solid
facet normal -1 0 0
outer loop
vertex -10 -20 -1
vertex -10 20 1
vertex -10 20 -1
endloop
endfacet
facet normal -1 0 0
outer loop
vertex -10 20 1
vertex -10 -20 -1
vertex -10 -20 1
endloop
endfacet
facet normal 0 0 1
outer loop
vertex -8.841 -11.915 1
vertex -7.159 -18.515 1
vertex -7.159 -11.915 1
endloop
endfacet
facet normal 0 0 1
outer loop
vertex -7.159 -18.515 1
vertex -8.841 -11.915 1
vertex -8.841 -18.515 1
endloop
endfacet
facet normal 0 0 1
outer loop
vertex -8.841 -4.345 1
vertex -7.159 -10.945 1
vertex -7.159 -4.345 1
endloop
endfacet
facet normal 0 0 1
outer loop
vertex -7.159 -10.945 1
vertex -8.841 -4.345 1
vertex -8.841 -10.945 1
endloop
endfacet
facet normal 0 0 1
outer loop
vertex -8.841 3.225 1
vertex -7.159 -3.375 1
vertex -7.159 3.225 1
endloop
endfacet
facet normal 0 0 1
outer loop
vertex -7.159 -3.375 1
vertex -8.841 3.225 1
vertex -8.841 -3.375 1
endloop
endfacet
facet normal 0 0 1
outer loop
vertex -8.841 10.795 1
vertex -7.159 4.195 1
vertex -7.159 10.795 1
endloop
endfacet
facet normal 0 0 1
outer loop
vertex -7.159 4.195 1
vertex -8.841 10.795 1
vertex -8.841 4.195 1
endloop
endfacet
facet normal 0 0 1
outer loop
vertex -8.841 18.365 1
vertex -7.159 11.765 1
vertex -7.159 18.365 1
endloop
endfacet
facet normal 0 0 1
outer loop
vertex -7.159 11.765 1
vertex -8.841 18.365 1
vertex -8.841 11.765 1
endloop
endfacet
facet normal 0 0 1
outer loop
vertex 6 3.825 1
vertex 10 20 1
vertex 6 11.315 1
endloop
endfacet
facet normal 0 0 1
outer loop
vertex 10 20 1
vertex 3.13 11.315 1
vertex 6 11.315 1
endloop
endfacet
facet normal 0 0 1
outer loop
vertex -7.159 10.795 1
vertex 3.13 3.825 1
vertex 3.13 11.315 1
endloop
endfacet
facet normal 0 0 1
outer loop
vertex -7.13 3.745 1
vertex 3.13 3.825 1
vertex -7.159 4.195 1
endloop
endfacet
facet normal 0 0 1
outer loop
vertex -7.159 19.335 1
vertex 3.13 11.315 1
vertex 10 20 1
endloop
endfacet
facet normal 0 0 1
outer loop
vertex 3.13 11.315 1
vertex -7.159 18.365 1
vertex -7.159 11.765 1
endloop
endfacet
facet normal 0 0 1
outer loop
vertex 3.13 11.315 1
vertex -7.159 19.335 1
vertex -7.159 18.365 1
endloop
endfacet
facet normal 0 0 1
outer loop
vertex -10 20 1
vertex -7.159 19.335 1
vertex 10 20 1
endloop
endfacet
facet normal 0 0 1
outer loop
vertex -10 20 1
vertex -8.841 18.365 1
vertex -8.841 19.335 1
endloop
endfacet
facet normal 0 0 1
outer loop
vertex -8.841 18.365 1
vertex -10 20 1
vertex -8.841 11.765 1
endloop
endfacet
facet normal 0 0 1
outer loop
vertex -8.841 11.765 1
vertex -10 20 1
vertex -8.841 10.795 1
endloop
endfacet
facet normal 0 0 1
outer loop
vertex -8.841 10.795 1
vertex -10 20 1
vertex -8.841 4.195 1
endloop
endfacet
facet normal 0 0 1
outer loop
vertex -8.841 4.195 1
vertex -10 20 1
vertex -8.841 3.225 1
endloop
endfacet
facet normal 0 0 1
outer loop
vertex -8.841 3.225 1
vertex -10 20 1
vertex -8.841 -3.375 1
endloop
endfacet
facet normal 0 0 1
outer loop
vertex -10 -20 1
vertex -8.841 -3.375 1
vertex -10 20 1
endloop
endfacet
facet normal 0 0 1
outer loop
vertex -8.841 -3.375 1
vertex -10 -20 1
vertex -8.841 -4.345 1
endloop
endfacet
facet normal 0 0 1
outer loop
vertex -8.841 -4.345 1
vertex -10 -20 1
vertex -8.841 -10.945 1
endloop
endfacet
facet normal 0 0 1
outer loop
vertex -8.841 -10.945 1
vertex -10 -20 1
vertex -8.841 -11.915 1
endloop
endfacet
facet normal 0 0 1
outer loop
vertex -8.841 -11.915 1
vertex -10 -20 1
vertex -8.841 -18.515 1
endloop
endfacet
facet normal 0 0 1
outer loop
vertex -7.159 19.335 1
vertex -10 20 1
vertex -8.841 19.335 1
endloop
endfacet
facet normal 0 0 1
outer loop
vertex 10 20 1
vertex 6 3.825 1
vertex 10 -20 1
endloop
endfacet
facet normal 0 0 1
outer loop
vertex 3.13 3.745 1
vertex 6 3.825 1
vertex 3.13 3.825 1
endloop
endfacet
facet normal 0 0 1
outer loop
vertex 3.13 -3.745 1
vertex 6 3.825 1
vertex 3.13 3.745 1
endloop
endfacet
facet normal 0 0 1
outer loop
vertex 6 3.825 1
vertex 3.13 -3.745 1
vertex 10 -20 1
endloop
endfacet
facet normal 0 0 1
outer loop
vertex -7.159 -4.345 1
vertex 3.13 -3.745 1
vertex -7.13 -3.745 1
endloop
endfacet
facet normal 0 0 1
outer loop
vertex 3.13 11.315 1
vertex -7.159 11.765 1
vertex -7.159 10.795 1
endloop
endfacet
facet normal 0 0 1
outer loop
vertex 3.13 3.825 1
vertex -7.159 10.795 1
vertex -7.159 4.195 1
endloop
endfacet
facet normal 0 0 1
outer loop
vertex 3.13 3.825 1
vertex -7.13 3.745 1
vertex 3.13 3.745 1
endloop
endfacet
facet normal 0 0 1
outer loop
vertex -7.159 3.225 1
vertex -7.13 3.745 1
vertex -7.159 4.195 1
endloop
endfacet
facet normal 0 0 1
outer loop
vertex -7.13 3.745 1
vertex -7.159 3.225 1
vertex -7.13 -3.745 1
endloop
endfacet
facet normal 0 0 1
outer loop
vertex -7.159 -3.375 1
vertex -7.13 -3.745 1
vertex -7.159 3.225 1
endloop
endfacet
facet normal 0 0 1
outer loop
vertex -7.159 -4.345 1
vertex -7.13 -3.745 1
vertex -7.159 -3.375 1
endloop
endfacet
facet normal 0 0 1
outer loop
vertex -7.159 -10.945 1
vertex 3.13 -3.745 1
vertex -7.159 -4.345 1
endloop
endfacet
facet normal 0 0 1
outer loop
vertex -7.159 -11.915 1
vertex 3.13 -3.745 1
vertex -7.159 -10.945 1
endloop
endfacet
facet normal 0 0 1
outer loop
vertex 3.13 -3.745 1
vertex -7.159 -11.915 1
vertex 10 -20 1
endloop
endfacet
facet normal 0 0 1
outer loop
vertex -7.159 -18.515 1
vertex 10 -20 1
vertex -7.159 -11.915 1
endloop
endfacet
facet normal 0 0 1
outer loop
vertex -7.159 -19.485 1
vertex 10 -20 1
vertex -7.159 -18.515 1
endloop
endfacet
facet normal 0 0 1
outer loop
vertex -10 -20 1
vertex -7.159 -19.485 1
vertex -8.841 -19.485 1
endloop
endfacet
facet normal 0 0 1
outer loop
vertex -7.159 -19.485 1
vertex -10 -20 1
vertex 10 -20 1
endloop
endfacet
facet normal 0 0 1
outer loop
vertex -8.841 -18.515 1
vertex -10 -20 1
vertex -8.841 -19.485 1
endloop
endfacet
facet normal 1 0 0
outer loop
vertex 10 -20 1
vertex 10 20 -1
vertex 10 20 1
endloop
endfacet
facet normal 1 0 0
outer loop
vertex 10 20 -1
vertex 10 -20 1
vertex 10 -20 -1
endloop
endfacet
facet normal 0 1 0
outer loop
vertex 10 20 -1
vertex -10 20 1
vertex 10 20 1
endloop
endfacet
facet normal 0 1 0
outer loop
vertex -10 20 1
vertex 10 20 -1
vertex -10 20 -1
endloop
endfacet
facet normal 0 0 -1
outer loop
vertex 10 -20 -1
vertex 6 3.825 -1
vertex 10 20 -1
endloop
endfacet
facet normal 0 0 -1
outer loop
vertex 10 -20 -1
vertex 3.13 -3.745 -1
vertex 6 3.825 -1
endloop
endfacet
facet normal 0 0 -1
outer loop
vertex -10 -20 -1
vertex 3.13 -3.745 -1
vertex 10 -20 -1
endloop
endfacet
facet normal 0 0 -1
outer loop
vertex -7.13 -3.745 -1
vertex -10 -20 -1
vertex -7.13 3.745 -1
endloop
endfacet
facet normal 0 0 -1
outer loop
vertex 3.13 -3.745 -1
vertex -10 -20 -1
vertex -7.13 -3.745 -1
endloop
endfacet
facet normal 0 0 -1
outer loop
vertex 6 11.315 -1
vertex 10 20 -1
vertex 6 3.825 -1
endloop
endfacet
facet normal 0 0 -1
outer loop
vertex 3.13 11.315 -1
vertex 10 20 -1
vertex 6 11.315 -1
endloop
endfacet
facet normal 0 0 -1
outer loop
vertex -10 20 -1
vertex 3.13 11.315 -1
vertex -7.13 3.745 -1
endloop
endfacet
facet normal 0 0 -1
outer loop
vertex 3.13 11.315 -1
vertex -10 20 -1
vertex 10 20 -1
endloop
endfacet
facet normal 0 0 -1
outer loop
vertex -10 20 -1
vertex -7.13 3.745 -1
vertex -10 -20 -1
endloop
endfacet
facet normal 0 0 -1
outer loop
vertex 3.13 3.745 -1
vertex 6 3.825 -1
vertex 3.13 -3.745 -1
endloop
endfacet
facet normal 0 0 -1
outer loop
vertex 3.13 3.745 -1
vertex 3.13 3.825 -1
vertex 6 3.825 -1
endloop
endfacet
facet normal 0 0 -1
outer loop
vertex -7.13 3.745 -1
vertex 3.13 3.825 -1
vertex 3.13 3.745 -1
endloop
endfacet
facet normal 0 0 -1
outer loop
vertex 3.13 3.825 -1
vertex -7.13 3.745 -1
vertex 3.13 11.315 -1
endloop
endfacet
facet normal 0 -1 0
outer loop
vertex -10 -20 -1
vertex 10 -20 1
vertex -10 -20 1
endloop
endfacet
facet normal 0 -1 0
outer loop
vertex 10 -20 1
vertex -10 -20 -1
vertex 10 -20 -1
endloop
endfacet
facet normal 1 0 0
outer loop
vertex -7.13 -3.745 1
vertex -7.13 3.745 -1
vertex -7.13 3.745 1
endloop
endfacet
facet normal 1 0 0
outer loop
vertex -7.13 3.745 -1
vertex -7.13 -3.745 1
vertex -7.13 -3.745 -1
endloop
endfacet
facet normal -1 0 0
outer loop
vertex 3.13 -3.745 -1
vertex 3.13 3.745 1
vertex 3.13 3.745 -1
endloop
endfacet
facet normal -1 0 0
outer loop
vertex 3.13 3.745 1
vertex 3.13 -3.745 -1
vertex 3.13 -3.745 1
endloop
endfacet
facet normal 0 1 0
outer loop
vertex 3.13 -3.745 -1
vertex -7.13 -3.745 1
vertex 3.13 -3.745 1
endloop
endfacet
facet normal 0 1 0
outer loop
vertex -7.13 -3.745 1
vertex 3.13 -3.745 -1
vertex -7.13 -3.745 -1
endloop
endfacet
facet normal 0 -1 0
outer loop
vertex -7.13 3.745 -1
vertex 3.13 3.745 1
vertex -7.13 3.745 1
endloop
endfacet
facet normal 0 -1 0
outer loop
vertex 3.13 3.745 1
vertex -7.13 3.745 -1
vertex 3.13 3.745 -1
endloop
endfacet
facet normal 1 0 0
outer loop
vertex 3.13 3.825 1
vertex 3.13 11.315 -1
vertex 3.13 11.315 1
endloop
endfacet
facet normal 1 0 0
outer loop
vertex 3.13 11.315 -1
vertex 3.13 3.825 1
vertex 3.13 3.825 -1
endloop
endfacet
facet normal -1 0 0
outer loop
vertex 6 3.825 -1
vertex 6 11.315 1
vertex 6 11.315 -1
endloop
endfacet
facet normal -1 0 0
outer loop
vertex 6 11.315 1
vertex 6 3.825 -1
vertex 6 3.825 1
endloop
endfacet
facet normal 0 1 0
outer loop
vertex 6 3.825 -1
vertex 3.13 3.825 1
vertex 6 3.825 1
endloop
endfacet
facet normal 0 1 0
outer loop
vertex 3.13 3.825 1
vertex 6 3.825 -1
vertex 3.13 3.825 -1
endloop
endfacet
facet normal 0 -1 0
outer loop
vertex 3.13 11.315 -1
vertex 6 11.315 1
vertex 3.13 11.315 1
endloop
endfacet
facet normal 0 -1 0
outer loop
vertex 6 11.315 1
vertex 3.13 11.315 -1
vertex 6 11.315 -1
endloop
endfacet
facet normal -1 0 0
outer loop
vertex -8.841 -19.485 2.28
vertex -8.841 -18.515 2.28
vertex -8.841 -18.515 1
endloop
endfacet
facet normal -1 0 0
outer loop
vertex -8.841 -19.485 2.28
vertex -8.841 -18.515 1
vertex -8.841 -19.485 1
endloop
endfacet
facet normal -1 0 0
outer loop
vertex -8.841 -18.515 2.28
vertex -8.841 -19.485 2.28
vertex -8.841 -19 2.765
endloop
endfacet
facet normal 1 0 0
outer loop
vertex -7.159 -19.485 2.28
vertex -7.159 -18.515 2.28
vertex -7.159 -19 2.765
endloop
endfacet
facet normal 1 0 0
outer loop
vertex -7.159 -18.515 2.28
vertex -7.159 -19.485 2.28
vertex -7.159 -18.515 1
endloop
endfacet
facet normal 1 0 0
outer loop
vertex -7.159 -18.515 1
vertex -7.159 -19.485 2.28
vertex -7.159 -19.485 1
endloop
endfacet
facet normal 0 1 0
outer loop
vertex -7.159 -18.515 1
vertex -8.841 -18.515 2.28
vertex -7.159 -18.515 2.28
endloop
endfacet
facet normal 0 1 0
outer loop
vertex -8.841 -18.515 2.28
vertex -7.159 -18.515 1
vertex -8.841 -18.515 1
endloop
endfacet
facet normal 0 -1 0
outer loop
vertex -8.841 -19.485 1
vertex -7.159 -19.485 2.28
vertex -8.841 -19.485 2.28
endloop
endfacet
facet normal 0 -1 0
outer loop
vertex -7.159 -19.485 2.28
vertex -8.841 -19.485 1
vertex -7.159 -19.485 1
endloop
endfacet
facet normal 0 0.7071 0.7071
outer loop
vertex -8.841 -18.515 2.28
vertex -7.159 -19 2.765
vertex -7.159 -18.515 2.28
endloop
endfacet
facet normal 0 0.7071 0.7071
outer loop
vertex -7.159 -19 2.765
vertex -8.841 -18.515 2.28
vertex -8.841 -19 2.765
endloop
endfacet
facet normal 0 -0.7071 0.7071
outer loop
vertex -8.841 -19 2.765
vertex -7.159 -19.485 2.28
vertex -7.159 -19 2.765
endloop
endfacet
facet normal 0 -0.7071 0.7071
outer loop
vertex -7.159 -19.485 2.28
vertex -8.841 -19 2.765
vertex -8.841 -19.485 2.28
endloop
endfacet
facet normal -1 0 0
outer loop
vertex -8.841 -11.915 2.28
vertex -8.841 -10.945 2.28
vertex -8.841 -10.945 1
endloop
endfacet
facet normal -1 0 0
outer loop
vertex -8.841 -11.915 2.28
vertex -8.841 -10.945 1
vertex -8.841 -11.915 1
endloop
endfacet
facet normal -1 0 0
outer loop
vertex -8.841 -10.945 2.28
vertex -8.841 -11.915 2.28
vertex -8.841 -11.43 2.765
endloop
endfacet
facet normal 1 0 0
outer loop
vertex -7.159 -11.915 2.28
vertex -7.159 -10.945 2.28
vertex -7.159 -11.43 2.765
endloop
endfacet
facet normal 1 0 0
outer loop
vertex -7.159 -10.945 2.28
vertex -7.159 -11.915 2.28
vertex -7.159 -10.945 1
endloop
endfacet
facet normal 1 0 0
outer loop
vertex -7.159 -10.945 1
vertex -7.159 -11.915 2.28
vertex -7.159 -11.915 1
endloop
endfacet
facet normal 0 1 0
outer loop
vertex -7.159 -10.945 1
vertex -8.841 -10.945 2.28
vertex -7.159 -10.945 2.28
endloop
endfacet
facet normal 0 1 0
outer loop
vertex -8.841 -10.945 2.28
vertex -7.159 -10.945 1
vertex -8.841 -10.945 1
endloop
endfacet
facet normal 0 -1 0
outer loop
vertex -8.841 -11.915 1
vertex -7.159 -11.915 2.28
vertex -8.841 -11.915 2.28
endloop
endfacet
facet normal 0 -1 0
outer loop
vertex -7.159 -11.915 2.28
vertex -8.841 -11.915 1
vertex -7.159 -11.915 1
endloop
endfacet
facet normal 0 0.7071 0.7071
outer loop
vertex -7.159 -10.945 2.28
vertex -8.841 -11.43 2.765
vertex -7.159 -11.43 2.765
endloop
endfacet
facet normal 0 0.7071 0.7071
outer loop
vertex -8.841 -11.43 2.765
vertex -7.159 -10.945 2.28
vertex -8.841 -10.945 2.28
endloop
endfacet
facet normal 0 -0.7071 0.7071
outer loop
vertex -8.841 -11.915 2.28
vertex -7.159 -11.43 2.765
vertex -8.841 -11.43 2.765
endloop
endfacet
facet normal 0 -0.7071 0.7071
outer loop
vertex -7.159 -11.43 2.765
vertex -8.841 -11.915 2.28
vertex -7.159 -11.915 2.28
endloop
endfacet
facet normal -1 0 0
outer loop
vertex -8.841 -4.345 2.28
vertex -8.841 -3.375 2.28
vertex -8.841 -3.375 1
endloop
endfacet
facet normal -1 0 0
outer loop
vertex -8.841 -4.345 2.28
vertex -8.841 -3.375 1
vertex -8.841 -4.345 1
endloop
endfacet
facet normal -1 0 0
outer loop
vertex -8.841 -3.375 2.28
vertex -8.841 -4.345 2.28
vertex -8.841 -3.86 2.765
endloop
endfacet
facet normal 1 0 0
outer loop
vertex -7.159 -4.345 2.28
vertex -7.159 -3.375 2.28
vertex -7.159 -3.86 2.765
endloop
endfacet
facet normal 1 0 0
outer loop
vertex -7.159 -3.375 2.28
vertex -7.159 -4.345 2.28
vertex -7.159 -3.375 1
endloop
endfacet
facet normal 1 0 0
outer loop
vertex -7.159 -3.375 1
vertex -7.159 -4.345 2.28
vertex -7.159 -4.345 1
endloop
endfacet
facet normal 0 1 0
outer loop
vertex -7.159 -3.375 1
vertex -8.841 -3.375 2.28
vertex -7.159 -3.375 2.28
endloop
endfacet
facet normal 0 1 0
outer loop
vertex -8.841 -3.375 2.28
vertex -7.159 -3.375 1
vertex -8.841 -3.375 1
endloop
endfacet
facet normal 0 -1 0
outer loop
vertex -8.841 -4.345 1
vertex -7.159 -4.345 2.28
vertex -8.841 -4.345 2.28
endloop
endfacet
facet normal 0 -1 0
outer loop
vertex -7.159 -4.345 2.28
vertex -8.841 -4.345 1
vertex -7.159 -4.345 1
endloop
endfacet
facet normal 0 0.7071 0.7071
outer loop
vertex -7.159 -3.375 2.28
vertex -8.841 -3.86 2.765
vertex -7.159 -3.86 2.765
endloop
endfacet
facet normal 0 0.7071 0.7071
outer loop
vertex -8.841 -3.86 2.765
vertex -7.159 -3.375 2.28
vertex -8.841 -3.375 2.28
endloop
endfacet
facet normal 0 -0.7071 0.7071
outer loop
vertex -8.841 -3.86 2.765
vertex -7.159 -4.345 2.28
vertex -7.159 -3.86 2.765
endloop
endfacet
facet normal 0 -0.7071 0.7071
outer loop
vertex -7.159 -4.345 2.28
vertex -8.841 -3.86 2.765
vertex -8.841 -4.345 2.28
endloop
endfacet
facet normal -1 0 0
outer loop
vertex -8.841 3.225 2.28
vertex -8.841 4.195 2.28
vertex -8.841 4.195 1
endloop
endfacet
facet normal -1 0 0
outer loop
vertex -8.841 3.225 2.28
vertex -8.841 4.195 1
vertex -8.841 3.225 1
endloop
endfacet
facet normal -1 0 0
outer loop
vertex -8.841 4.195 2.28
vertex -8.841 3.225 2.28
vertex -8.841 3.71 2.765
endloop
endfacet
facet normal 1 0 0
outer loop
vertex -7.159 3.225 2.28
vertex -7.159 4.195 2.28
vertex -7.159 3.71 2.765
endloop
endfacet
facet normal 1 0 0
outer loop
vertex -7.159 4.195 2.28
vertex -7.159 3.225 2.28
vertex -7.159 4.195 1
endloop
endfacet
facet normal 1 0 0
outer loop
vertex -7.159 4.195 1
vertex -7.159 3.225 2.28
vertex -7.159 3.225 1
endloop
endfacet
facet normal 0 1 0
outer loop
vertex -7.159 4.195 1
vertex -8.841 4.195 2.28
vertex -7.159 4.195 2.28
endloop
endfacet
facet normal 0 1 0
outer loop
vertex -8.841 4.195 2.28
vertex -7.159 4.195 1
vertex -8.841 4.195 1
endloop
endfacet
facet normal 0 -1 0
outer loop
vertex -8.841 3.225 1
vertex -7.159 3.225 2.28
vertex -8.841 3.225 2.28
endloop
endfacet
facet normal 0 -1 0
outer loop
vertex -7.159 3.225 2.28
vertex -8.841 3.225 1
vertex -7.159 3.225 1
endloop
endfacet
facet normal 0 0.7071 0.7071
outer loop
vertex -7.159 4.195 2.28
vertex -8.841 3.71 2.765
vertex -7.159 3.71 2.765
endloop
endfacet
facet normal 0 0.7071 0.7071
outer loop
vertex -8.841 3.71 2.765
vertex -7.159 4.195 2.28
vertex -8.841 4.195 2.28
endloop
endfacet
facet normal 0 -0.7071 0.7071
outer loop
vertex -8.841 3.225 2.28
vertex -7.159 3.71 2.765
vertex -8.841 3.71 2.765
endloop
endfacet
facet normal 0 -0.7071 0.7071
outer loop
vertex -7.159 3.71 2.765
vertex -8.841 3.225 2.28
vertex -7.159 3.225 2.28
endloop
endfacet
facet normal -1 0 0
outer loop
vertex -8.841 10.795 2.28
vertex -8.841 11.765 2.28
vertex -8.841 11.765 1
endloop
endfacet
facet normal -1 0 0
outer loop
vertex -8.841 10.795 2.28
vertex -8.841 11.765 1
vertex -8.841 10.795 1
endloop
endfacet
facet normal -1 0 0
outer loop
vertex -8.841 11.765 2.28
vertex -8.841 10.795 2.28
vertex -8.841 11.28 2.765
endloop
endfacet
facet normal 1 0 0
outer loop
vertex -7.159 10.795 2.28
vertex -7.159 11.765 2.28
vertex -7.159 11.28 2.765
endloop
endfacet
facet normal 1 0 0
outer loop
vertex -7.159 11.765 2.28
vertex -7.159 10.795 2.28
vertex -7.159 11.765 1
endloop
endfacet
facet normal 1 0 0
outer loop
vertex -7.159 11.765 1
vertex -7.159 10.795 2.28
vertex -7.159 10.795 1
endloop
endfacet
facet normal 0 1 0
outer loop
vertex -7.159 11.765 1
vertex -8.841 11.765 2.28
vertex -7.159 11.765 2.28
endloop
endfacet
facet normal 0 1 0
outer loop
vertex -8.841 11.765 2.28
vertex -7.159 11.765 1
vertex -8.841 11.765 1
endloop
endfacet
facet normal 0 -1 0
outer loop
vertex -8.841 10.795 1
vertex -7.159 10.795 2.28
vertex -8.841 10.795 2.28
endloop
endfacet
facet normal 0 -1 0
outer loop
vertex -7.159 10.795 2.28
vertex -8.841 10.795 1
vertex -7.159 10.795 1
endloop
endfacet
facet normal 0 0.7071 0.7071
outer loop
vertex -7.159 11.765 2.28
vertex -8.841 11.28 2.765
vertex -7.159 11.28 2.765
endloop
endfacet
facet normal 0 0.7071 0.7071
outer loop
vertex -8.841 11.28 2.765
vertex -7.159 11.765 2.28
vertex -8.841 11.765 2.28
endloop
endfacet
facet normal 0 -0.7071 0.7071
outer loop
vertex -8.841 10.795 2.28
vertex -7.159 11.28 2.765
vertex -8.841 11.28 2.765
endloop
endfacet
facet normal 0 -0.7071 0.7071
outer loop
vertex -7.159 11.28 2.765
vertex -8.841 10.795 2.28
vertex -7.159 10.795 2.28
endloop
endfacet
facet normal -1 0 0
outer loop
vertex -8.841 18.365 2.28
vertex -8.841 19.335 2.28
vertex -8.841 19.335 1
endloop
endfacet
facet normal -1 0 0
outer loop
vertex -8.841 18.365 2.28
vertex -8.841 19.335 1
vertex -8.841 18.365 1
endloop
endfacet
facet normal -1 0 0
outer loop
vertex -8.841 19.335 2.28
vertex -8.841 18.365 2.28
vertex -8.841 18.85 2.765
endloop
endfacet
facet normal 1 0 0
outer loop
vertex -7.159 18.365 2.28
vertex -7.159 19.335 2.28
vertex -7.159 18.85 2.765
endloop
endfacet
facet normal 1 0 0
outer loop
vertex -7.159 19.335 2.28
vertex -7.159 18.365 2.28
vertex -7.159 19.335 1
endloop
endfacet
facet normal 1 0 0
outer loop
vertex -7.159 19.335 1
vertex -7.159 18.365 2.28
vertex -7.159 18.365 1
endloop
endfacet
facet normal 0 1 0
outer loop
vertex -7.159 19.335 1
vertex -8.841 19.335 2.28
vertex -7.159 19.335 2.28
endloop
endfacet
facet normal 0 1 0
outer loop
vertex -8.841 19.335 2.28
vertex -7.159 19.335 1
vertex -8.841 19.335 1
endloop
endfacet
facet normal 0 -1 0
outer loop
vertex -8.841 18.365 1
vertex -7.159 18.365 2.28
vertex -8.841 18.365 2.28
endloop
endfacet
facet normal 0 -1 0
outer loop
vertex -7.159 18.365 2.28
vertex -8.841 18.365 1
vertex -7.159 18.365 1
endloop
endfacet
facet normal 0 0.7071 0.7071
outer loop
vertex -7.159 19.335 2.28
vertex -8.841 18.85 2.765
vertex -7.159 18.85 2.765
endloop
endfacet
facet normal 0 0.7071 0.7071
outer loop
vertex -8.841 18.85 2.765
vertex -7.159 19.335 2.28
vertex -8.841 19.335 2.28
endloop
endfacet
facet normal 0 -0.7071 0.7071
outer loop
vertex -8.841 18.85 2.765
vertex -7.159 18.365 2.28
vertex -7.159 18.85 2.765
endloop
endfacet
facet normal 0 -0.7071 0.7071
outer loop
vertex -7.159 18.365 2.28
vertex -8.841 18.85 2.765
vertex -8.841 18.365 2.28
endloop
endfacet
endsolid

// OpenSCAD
time=0;

//https://commons.wikimedia.org/wiki/File:16mm_and_super16.png
FRAME_H = 7.49;
FRAME_W = 10.26;
FRAME_OUTER = 16 - FRAME_W;
module 16mm_plate () {
    difference () {
        cube([20, 40, 2], center = true);
        //translate([10.3, 0, 1.3]) rotate([0, 30, 0]) cube([8, 200, 4], center = true);
        //image void
        translate([-((20 - FRAME_W) / 2) + (FRAME_OUTER / 2), 0, 0]) cube([FRAME_W, FRAME_H, 2 + 1], center = true);
        //sound void
        translate([-((20 - 16) / 2) + (16 / 2) - (FRAME_OUTER / 4), 7.57, 0]) cube([(16 - FRAME_W) / 2, FRAME_H, 2 + 1], center = true);
    }
	translate([-8, -19, 1.3]) {
		for (i = [0 : 5]) {
			registration_pin(0, i * 7.57);
		}
	}
}

module registration_pin(x, y) {
	z = 3;
	w = 1.27 - .3;
	h = 1.9812 - .3;
	translate([x, y, 0]) {
        difference () {
            cube([h, w, z], center = true);
            translate([0, w/1.6, z - (w * 1.5)]) rotate([45, 0, 0]) cube([h, w, w], center = true);
            translate([0, -w/1.6, z - (w * 1.5)]) rotate([-45, 0, 0]) cube([h, w, w], center = true);
        }
    }
}

rotate([0, 0, time]) 16mm_plate();
